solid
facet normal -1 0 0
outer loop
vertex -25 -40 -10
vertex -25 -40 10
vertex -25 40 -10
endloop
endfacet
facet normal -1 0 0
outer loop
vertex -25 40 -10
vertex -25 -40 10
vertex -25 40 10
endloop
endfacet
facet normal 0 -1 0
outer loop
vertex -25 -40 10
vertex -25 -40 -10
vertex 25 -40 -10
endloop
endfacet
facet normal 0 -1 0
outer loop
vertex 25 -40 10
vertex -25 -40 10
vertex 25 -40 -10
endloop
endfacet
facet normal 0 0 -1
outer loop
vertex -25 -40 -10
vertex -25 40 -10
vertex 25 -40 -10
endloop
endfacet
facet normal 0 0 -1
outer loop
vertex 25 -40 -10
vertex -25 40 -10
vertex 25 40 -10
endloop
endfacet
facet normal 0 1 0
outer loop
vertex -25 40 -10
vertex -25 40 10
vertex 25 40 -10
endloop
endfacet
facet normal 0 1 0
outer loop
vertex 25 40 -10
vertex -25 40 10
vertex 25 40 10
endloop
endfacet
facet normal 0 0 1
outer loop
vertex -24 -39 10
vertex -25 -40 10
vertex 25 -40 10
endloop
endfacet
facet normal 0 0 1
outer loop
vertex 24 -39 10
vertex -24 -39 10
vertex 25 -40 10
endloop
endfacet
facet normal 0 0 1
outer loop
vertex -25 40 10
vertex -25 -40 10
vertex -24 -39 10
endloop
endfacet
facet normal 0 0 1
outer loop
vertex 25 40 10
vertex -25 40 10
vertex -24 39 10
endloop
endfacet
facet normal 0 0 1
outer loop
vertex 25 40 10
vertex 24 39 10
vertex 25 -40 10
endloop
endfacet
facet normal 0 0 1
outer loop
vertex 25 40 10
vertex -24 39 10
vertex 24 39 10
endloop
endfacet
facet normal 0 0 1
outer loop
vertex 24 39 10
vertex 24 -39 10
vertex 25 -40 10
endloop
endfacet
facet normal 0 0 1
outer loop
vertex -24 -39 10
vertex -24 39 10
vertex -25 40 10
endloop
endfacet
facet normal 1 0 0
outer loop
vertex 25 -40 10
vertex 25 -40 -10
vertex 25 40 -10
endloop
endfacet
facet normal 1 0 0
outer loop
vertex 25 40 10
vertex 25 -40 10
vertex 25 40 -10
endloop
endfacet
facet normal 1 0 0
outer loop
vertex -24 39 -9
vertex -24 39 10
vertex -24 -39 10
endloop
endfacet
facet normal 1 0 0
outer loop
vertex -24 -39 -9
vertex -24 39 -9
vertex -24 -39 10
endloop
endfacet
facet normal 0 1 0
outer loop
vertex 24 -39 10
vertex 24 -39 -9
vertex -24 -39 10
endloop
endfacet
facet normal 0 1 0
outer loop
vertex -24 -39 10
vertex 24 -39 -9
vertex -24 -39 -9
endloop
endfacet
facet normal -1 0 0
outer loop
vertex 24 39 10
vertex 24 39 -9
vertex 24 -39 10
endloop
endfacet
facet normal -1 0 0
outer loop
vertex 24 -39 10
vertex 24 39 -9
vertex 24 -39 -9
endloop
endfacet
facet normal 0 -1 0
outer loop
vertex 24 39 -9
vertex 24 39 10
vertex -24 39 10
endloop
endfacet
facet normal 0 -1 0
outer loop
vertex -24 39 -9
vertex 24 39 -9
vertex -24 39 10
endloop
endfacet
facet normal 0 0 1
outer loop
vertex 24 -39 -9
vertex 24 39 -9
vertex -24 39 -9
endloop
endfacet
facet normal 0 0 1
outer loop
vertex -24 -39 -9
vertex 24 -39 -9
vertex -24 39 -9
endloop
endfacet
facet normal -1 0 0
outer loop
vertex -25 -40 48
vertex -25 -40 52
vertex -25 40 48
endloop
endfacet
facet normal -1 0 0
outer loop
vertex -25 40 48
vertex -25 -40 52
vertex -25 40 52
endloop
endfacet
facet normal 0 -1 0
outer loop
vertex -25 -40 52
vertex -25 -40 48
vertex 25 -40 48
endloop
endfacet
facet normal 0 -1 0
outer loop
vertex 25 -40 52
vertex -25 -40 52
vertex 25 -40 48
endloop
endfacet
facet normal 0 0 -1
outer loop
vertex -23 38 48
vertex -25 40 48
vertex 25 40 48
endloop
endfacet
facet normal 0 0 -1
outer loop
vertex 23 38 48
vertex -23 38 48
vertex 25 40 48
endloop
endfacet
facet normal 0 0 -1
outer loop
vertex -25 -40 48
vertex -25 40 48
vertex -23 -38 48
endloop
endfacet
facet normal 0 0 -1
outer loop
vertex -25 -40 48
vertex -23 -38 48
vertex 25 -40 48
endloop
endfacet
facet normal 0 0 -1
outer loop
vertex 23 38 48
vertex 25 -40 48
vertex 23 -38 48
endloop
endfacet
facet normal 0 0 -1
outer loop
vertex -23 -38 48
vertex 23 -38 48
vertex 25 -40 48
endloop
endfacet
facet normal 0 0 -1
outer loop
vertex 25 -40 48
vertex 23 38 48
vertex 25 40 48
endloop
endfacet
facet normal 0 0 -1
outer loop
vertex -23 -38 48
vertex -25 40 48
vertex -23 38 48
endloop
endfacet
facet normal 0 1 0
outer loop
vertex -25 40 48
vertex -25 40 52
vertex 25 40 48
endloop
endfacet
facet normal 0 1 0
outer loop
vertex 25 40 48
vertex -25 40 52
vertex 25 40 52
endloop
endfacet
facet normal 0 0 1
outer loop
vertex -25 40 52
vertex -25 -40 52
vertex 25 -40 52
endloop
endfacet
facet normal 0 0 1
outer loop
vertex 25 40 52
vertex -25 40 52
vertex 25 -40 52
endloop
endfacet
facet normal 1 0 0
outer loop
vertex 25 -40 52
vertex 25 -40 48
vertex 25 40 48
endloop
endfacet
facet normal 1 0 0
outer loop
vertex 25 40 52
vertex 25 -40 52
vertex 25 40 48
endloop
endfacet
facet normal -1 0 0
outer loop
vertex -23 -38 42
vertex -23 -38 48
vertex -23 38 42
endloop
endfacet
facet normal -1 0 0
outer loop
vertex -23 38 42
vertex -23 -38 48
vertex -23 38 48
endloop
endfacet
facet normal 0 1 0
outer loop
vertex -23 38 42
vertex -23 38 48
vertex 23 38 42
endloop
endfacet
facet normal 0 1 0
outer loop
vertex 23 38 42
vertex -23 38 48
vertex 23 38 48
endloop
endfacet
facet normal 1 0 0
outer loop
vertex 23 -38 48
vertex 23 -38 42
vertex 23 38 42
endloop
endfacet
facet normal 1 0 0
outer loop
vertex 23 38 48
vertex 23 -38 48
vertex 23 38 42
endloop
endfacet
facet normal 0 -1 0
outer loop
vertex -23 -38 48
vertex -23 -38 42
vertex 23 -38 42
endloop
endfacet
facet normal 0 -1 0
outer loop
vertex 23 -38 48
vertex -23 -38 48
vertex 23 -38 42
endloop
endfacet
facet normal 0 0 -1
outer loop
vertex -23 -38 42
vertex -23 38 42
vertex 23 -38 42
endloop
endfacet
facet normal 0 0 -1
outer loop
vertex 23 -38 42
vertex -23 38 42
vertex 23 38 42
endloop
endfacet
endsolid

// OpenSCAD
Box(50, 80, 20, 2);

translate([0, 0, 50]) Lid(50, 80, 4, 4);

module Box(l, h, d, diff)
{
	difference()
	{
		cube([l, h, d], center = true);
		translate([0, 0, diff]) cube([l-diff, h-diff, d+diff], center = true);
	}
}

module Lid(l, h, d, diff)
{
	union()
	{
		cube([l, h, d], center = true);
		translate([0, 0, -diff]) cube([l-diff, h-diff, d+diff], center = true);
	}
}
